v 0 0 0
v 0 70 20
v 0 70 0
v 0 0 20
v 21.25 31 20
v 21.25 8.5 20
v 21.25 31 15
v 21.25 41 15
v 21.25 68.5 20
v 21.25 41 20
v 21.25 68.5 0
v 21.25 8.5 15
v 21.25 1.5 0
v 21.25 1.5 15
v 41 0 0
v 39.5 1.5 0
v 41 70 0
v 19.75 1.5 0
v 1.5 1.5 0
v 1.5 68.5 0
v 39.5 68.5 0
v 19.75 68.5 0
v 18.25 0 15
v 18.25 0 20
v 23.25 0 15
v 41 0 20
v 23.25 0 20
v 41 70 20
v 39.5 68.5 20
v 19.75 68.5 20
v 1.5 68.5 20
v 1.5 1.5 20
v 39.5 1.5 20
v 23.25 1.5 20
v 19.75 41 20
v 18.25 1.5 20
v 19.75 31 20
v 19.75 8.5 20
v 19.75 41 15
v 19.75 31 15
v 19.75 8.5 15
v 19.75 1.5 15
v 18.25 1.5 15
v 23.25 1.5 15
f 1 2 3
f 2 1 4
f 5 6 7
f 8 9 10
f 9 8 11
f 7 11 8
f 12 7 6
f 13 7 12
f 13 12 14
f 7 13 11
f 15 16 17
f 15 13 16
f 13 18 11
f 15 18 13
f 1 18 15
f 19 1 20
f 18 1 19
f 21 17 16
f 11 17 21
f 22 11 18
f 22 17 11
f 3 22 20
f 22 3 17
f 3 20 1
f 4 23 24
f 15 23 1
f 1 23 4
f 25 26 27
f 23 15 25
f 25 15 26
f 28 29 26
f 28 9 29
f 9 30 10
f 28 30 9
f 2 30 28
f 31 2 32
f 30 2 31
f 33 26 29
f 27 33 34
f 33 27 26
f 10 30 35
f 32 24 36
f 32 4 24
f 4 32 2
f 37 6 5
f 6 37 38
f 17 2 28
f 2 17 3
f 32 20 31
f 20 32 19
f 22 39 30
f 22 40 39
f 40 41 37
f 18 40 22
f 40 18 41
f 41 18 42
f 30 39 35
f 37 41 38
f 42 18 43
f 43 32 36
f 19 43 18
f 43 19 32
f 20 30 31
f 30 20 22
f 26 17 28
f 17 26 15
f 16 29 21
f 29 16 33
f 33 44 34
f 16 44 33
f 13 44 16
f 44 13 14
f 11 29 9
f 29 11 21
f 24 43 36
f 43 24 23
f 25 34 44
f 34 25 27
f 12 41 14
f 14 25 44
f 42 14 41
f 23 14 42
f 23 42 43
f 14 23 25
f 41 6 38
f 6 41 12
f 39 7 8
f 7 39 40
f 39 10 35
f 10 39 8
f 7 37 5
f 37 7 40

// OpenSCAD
// M8 battery holder for 2x 18650 Feb 1 2024
// intended to be glued to the bottom inside of the base

width=18.25;  // inside width for one battery
length= 67; // inside length
wall_thickness=1.5;

depth=20;





module rounded_cube(x,y,z,r) {
    linear_extrude(height=z) translate([r,r,0]) offset(r=r) square([x-2*r,y-2*r]);
}

module hollow_cube(width,length,cutx,cuty,cutwidth,cutlength,depth,r) {
    difference () {
        rounded_cube(width,length,depth,r);
        translate([cutx,cuty,-1]) rounded_cube(cutwidth,cutlength,depth+2,0);

    }
}

difference () {
    union() {

        hollow_cube (width+wall_thickness*2,length+wall_thickness*2,wall_thickness      ,wall_thickness,width,length,depth,0);  //
       translate([width+wall_thickness,0,0]) hollow_cube (width+wall_thickness*2,length+wall_thickness*2,wall_thickness      ,wall_thickness,width,length,depth,0);  //  
      
    };
   translate([width,0-wall_thickness,depth-5]) rounded_cube(5,10,6,0); // endcutout for wires
   translate([width,length/2-2.5,depth-5]) rounded_cube(5,10,6,0); // center cutout for wires
}
